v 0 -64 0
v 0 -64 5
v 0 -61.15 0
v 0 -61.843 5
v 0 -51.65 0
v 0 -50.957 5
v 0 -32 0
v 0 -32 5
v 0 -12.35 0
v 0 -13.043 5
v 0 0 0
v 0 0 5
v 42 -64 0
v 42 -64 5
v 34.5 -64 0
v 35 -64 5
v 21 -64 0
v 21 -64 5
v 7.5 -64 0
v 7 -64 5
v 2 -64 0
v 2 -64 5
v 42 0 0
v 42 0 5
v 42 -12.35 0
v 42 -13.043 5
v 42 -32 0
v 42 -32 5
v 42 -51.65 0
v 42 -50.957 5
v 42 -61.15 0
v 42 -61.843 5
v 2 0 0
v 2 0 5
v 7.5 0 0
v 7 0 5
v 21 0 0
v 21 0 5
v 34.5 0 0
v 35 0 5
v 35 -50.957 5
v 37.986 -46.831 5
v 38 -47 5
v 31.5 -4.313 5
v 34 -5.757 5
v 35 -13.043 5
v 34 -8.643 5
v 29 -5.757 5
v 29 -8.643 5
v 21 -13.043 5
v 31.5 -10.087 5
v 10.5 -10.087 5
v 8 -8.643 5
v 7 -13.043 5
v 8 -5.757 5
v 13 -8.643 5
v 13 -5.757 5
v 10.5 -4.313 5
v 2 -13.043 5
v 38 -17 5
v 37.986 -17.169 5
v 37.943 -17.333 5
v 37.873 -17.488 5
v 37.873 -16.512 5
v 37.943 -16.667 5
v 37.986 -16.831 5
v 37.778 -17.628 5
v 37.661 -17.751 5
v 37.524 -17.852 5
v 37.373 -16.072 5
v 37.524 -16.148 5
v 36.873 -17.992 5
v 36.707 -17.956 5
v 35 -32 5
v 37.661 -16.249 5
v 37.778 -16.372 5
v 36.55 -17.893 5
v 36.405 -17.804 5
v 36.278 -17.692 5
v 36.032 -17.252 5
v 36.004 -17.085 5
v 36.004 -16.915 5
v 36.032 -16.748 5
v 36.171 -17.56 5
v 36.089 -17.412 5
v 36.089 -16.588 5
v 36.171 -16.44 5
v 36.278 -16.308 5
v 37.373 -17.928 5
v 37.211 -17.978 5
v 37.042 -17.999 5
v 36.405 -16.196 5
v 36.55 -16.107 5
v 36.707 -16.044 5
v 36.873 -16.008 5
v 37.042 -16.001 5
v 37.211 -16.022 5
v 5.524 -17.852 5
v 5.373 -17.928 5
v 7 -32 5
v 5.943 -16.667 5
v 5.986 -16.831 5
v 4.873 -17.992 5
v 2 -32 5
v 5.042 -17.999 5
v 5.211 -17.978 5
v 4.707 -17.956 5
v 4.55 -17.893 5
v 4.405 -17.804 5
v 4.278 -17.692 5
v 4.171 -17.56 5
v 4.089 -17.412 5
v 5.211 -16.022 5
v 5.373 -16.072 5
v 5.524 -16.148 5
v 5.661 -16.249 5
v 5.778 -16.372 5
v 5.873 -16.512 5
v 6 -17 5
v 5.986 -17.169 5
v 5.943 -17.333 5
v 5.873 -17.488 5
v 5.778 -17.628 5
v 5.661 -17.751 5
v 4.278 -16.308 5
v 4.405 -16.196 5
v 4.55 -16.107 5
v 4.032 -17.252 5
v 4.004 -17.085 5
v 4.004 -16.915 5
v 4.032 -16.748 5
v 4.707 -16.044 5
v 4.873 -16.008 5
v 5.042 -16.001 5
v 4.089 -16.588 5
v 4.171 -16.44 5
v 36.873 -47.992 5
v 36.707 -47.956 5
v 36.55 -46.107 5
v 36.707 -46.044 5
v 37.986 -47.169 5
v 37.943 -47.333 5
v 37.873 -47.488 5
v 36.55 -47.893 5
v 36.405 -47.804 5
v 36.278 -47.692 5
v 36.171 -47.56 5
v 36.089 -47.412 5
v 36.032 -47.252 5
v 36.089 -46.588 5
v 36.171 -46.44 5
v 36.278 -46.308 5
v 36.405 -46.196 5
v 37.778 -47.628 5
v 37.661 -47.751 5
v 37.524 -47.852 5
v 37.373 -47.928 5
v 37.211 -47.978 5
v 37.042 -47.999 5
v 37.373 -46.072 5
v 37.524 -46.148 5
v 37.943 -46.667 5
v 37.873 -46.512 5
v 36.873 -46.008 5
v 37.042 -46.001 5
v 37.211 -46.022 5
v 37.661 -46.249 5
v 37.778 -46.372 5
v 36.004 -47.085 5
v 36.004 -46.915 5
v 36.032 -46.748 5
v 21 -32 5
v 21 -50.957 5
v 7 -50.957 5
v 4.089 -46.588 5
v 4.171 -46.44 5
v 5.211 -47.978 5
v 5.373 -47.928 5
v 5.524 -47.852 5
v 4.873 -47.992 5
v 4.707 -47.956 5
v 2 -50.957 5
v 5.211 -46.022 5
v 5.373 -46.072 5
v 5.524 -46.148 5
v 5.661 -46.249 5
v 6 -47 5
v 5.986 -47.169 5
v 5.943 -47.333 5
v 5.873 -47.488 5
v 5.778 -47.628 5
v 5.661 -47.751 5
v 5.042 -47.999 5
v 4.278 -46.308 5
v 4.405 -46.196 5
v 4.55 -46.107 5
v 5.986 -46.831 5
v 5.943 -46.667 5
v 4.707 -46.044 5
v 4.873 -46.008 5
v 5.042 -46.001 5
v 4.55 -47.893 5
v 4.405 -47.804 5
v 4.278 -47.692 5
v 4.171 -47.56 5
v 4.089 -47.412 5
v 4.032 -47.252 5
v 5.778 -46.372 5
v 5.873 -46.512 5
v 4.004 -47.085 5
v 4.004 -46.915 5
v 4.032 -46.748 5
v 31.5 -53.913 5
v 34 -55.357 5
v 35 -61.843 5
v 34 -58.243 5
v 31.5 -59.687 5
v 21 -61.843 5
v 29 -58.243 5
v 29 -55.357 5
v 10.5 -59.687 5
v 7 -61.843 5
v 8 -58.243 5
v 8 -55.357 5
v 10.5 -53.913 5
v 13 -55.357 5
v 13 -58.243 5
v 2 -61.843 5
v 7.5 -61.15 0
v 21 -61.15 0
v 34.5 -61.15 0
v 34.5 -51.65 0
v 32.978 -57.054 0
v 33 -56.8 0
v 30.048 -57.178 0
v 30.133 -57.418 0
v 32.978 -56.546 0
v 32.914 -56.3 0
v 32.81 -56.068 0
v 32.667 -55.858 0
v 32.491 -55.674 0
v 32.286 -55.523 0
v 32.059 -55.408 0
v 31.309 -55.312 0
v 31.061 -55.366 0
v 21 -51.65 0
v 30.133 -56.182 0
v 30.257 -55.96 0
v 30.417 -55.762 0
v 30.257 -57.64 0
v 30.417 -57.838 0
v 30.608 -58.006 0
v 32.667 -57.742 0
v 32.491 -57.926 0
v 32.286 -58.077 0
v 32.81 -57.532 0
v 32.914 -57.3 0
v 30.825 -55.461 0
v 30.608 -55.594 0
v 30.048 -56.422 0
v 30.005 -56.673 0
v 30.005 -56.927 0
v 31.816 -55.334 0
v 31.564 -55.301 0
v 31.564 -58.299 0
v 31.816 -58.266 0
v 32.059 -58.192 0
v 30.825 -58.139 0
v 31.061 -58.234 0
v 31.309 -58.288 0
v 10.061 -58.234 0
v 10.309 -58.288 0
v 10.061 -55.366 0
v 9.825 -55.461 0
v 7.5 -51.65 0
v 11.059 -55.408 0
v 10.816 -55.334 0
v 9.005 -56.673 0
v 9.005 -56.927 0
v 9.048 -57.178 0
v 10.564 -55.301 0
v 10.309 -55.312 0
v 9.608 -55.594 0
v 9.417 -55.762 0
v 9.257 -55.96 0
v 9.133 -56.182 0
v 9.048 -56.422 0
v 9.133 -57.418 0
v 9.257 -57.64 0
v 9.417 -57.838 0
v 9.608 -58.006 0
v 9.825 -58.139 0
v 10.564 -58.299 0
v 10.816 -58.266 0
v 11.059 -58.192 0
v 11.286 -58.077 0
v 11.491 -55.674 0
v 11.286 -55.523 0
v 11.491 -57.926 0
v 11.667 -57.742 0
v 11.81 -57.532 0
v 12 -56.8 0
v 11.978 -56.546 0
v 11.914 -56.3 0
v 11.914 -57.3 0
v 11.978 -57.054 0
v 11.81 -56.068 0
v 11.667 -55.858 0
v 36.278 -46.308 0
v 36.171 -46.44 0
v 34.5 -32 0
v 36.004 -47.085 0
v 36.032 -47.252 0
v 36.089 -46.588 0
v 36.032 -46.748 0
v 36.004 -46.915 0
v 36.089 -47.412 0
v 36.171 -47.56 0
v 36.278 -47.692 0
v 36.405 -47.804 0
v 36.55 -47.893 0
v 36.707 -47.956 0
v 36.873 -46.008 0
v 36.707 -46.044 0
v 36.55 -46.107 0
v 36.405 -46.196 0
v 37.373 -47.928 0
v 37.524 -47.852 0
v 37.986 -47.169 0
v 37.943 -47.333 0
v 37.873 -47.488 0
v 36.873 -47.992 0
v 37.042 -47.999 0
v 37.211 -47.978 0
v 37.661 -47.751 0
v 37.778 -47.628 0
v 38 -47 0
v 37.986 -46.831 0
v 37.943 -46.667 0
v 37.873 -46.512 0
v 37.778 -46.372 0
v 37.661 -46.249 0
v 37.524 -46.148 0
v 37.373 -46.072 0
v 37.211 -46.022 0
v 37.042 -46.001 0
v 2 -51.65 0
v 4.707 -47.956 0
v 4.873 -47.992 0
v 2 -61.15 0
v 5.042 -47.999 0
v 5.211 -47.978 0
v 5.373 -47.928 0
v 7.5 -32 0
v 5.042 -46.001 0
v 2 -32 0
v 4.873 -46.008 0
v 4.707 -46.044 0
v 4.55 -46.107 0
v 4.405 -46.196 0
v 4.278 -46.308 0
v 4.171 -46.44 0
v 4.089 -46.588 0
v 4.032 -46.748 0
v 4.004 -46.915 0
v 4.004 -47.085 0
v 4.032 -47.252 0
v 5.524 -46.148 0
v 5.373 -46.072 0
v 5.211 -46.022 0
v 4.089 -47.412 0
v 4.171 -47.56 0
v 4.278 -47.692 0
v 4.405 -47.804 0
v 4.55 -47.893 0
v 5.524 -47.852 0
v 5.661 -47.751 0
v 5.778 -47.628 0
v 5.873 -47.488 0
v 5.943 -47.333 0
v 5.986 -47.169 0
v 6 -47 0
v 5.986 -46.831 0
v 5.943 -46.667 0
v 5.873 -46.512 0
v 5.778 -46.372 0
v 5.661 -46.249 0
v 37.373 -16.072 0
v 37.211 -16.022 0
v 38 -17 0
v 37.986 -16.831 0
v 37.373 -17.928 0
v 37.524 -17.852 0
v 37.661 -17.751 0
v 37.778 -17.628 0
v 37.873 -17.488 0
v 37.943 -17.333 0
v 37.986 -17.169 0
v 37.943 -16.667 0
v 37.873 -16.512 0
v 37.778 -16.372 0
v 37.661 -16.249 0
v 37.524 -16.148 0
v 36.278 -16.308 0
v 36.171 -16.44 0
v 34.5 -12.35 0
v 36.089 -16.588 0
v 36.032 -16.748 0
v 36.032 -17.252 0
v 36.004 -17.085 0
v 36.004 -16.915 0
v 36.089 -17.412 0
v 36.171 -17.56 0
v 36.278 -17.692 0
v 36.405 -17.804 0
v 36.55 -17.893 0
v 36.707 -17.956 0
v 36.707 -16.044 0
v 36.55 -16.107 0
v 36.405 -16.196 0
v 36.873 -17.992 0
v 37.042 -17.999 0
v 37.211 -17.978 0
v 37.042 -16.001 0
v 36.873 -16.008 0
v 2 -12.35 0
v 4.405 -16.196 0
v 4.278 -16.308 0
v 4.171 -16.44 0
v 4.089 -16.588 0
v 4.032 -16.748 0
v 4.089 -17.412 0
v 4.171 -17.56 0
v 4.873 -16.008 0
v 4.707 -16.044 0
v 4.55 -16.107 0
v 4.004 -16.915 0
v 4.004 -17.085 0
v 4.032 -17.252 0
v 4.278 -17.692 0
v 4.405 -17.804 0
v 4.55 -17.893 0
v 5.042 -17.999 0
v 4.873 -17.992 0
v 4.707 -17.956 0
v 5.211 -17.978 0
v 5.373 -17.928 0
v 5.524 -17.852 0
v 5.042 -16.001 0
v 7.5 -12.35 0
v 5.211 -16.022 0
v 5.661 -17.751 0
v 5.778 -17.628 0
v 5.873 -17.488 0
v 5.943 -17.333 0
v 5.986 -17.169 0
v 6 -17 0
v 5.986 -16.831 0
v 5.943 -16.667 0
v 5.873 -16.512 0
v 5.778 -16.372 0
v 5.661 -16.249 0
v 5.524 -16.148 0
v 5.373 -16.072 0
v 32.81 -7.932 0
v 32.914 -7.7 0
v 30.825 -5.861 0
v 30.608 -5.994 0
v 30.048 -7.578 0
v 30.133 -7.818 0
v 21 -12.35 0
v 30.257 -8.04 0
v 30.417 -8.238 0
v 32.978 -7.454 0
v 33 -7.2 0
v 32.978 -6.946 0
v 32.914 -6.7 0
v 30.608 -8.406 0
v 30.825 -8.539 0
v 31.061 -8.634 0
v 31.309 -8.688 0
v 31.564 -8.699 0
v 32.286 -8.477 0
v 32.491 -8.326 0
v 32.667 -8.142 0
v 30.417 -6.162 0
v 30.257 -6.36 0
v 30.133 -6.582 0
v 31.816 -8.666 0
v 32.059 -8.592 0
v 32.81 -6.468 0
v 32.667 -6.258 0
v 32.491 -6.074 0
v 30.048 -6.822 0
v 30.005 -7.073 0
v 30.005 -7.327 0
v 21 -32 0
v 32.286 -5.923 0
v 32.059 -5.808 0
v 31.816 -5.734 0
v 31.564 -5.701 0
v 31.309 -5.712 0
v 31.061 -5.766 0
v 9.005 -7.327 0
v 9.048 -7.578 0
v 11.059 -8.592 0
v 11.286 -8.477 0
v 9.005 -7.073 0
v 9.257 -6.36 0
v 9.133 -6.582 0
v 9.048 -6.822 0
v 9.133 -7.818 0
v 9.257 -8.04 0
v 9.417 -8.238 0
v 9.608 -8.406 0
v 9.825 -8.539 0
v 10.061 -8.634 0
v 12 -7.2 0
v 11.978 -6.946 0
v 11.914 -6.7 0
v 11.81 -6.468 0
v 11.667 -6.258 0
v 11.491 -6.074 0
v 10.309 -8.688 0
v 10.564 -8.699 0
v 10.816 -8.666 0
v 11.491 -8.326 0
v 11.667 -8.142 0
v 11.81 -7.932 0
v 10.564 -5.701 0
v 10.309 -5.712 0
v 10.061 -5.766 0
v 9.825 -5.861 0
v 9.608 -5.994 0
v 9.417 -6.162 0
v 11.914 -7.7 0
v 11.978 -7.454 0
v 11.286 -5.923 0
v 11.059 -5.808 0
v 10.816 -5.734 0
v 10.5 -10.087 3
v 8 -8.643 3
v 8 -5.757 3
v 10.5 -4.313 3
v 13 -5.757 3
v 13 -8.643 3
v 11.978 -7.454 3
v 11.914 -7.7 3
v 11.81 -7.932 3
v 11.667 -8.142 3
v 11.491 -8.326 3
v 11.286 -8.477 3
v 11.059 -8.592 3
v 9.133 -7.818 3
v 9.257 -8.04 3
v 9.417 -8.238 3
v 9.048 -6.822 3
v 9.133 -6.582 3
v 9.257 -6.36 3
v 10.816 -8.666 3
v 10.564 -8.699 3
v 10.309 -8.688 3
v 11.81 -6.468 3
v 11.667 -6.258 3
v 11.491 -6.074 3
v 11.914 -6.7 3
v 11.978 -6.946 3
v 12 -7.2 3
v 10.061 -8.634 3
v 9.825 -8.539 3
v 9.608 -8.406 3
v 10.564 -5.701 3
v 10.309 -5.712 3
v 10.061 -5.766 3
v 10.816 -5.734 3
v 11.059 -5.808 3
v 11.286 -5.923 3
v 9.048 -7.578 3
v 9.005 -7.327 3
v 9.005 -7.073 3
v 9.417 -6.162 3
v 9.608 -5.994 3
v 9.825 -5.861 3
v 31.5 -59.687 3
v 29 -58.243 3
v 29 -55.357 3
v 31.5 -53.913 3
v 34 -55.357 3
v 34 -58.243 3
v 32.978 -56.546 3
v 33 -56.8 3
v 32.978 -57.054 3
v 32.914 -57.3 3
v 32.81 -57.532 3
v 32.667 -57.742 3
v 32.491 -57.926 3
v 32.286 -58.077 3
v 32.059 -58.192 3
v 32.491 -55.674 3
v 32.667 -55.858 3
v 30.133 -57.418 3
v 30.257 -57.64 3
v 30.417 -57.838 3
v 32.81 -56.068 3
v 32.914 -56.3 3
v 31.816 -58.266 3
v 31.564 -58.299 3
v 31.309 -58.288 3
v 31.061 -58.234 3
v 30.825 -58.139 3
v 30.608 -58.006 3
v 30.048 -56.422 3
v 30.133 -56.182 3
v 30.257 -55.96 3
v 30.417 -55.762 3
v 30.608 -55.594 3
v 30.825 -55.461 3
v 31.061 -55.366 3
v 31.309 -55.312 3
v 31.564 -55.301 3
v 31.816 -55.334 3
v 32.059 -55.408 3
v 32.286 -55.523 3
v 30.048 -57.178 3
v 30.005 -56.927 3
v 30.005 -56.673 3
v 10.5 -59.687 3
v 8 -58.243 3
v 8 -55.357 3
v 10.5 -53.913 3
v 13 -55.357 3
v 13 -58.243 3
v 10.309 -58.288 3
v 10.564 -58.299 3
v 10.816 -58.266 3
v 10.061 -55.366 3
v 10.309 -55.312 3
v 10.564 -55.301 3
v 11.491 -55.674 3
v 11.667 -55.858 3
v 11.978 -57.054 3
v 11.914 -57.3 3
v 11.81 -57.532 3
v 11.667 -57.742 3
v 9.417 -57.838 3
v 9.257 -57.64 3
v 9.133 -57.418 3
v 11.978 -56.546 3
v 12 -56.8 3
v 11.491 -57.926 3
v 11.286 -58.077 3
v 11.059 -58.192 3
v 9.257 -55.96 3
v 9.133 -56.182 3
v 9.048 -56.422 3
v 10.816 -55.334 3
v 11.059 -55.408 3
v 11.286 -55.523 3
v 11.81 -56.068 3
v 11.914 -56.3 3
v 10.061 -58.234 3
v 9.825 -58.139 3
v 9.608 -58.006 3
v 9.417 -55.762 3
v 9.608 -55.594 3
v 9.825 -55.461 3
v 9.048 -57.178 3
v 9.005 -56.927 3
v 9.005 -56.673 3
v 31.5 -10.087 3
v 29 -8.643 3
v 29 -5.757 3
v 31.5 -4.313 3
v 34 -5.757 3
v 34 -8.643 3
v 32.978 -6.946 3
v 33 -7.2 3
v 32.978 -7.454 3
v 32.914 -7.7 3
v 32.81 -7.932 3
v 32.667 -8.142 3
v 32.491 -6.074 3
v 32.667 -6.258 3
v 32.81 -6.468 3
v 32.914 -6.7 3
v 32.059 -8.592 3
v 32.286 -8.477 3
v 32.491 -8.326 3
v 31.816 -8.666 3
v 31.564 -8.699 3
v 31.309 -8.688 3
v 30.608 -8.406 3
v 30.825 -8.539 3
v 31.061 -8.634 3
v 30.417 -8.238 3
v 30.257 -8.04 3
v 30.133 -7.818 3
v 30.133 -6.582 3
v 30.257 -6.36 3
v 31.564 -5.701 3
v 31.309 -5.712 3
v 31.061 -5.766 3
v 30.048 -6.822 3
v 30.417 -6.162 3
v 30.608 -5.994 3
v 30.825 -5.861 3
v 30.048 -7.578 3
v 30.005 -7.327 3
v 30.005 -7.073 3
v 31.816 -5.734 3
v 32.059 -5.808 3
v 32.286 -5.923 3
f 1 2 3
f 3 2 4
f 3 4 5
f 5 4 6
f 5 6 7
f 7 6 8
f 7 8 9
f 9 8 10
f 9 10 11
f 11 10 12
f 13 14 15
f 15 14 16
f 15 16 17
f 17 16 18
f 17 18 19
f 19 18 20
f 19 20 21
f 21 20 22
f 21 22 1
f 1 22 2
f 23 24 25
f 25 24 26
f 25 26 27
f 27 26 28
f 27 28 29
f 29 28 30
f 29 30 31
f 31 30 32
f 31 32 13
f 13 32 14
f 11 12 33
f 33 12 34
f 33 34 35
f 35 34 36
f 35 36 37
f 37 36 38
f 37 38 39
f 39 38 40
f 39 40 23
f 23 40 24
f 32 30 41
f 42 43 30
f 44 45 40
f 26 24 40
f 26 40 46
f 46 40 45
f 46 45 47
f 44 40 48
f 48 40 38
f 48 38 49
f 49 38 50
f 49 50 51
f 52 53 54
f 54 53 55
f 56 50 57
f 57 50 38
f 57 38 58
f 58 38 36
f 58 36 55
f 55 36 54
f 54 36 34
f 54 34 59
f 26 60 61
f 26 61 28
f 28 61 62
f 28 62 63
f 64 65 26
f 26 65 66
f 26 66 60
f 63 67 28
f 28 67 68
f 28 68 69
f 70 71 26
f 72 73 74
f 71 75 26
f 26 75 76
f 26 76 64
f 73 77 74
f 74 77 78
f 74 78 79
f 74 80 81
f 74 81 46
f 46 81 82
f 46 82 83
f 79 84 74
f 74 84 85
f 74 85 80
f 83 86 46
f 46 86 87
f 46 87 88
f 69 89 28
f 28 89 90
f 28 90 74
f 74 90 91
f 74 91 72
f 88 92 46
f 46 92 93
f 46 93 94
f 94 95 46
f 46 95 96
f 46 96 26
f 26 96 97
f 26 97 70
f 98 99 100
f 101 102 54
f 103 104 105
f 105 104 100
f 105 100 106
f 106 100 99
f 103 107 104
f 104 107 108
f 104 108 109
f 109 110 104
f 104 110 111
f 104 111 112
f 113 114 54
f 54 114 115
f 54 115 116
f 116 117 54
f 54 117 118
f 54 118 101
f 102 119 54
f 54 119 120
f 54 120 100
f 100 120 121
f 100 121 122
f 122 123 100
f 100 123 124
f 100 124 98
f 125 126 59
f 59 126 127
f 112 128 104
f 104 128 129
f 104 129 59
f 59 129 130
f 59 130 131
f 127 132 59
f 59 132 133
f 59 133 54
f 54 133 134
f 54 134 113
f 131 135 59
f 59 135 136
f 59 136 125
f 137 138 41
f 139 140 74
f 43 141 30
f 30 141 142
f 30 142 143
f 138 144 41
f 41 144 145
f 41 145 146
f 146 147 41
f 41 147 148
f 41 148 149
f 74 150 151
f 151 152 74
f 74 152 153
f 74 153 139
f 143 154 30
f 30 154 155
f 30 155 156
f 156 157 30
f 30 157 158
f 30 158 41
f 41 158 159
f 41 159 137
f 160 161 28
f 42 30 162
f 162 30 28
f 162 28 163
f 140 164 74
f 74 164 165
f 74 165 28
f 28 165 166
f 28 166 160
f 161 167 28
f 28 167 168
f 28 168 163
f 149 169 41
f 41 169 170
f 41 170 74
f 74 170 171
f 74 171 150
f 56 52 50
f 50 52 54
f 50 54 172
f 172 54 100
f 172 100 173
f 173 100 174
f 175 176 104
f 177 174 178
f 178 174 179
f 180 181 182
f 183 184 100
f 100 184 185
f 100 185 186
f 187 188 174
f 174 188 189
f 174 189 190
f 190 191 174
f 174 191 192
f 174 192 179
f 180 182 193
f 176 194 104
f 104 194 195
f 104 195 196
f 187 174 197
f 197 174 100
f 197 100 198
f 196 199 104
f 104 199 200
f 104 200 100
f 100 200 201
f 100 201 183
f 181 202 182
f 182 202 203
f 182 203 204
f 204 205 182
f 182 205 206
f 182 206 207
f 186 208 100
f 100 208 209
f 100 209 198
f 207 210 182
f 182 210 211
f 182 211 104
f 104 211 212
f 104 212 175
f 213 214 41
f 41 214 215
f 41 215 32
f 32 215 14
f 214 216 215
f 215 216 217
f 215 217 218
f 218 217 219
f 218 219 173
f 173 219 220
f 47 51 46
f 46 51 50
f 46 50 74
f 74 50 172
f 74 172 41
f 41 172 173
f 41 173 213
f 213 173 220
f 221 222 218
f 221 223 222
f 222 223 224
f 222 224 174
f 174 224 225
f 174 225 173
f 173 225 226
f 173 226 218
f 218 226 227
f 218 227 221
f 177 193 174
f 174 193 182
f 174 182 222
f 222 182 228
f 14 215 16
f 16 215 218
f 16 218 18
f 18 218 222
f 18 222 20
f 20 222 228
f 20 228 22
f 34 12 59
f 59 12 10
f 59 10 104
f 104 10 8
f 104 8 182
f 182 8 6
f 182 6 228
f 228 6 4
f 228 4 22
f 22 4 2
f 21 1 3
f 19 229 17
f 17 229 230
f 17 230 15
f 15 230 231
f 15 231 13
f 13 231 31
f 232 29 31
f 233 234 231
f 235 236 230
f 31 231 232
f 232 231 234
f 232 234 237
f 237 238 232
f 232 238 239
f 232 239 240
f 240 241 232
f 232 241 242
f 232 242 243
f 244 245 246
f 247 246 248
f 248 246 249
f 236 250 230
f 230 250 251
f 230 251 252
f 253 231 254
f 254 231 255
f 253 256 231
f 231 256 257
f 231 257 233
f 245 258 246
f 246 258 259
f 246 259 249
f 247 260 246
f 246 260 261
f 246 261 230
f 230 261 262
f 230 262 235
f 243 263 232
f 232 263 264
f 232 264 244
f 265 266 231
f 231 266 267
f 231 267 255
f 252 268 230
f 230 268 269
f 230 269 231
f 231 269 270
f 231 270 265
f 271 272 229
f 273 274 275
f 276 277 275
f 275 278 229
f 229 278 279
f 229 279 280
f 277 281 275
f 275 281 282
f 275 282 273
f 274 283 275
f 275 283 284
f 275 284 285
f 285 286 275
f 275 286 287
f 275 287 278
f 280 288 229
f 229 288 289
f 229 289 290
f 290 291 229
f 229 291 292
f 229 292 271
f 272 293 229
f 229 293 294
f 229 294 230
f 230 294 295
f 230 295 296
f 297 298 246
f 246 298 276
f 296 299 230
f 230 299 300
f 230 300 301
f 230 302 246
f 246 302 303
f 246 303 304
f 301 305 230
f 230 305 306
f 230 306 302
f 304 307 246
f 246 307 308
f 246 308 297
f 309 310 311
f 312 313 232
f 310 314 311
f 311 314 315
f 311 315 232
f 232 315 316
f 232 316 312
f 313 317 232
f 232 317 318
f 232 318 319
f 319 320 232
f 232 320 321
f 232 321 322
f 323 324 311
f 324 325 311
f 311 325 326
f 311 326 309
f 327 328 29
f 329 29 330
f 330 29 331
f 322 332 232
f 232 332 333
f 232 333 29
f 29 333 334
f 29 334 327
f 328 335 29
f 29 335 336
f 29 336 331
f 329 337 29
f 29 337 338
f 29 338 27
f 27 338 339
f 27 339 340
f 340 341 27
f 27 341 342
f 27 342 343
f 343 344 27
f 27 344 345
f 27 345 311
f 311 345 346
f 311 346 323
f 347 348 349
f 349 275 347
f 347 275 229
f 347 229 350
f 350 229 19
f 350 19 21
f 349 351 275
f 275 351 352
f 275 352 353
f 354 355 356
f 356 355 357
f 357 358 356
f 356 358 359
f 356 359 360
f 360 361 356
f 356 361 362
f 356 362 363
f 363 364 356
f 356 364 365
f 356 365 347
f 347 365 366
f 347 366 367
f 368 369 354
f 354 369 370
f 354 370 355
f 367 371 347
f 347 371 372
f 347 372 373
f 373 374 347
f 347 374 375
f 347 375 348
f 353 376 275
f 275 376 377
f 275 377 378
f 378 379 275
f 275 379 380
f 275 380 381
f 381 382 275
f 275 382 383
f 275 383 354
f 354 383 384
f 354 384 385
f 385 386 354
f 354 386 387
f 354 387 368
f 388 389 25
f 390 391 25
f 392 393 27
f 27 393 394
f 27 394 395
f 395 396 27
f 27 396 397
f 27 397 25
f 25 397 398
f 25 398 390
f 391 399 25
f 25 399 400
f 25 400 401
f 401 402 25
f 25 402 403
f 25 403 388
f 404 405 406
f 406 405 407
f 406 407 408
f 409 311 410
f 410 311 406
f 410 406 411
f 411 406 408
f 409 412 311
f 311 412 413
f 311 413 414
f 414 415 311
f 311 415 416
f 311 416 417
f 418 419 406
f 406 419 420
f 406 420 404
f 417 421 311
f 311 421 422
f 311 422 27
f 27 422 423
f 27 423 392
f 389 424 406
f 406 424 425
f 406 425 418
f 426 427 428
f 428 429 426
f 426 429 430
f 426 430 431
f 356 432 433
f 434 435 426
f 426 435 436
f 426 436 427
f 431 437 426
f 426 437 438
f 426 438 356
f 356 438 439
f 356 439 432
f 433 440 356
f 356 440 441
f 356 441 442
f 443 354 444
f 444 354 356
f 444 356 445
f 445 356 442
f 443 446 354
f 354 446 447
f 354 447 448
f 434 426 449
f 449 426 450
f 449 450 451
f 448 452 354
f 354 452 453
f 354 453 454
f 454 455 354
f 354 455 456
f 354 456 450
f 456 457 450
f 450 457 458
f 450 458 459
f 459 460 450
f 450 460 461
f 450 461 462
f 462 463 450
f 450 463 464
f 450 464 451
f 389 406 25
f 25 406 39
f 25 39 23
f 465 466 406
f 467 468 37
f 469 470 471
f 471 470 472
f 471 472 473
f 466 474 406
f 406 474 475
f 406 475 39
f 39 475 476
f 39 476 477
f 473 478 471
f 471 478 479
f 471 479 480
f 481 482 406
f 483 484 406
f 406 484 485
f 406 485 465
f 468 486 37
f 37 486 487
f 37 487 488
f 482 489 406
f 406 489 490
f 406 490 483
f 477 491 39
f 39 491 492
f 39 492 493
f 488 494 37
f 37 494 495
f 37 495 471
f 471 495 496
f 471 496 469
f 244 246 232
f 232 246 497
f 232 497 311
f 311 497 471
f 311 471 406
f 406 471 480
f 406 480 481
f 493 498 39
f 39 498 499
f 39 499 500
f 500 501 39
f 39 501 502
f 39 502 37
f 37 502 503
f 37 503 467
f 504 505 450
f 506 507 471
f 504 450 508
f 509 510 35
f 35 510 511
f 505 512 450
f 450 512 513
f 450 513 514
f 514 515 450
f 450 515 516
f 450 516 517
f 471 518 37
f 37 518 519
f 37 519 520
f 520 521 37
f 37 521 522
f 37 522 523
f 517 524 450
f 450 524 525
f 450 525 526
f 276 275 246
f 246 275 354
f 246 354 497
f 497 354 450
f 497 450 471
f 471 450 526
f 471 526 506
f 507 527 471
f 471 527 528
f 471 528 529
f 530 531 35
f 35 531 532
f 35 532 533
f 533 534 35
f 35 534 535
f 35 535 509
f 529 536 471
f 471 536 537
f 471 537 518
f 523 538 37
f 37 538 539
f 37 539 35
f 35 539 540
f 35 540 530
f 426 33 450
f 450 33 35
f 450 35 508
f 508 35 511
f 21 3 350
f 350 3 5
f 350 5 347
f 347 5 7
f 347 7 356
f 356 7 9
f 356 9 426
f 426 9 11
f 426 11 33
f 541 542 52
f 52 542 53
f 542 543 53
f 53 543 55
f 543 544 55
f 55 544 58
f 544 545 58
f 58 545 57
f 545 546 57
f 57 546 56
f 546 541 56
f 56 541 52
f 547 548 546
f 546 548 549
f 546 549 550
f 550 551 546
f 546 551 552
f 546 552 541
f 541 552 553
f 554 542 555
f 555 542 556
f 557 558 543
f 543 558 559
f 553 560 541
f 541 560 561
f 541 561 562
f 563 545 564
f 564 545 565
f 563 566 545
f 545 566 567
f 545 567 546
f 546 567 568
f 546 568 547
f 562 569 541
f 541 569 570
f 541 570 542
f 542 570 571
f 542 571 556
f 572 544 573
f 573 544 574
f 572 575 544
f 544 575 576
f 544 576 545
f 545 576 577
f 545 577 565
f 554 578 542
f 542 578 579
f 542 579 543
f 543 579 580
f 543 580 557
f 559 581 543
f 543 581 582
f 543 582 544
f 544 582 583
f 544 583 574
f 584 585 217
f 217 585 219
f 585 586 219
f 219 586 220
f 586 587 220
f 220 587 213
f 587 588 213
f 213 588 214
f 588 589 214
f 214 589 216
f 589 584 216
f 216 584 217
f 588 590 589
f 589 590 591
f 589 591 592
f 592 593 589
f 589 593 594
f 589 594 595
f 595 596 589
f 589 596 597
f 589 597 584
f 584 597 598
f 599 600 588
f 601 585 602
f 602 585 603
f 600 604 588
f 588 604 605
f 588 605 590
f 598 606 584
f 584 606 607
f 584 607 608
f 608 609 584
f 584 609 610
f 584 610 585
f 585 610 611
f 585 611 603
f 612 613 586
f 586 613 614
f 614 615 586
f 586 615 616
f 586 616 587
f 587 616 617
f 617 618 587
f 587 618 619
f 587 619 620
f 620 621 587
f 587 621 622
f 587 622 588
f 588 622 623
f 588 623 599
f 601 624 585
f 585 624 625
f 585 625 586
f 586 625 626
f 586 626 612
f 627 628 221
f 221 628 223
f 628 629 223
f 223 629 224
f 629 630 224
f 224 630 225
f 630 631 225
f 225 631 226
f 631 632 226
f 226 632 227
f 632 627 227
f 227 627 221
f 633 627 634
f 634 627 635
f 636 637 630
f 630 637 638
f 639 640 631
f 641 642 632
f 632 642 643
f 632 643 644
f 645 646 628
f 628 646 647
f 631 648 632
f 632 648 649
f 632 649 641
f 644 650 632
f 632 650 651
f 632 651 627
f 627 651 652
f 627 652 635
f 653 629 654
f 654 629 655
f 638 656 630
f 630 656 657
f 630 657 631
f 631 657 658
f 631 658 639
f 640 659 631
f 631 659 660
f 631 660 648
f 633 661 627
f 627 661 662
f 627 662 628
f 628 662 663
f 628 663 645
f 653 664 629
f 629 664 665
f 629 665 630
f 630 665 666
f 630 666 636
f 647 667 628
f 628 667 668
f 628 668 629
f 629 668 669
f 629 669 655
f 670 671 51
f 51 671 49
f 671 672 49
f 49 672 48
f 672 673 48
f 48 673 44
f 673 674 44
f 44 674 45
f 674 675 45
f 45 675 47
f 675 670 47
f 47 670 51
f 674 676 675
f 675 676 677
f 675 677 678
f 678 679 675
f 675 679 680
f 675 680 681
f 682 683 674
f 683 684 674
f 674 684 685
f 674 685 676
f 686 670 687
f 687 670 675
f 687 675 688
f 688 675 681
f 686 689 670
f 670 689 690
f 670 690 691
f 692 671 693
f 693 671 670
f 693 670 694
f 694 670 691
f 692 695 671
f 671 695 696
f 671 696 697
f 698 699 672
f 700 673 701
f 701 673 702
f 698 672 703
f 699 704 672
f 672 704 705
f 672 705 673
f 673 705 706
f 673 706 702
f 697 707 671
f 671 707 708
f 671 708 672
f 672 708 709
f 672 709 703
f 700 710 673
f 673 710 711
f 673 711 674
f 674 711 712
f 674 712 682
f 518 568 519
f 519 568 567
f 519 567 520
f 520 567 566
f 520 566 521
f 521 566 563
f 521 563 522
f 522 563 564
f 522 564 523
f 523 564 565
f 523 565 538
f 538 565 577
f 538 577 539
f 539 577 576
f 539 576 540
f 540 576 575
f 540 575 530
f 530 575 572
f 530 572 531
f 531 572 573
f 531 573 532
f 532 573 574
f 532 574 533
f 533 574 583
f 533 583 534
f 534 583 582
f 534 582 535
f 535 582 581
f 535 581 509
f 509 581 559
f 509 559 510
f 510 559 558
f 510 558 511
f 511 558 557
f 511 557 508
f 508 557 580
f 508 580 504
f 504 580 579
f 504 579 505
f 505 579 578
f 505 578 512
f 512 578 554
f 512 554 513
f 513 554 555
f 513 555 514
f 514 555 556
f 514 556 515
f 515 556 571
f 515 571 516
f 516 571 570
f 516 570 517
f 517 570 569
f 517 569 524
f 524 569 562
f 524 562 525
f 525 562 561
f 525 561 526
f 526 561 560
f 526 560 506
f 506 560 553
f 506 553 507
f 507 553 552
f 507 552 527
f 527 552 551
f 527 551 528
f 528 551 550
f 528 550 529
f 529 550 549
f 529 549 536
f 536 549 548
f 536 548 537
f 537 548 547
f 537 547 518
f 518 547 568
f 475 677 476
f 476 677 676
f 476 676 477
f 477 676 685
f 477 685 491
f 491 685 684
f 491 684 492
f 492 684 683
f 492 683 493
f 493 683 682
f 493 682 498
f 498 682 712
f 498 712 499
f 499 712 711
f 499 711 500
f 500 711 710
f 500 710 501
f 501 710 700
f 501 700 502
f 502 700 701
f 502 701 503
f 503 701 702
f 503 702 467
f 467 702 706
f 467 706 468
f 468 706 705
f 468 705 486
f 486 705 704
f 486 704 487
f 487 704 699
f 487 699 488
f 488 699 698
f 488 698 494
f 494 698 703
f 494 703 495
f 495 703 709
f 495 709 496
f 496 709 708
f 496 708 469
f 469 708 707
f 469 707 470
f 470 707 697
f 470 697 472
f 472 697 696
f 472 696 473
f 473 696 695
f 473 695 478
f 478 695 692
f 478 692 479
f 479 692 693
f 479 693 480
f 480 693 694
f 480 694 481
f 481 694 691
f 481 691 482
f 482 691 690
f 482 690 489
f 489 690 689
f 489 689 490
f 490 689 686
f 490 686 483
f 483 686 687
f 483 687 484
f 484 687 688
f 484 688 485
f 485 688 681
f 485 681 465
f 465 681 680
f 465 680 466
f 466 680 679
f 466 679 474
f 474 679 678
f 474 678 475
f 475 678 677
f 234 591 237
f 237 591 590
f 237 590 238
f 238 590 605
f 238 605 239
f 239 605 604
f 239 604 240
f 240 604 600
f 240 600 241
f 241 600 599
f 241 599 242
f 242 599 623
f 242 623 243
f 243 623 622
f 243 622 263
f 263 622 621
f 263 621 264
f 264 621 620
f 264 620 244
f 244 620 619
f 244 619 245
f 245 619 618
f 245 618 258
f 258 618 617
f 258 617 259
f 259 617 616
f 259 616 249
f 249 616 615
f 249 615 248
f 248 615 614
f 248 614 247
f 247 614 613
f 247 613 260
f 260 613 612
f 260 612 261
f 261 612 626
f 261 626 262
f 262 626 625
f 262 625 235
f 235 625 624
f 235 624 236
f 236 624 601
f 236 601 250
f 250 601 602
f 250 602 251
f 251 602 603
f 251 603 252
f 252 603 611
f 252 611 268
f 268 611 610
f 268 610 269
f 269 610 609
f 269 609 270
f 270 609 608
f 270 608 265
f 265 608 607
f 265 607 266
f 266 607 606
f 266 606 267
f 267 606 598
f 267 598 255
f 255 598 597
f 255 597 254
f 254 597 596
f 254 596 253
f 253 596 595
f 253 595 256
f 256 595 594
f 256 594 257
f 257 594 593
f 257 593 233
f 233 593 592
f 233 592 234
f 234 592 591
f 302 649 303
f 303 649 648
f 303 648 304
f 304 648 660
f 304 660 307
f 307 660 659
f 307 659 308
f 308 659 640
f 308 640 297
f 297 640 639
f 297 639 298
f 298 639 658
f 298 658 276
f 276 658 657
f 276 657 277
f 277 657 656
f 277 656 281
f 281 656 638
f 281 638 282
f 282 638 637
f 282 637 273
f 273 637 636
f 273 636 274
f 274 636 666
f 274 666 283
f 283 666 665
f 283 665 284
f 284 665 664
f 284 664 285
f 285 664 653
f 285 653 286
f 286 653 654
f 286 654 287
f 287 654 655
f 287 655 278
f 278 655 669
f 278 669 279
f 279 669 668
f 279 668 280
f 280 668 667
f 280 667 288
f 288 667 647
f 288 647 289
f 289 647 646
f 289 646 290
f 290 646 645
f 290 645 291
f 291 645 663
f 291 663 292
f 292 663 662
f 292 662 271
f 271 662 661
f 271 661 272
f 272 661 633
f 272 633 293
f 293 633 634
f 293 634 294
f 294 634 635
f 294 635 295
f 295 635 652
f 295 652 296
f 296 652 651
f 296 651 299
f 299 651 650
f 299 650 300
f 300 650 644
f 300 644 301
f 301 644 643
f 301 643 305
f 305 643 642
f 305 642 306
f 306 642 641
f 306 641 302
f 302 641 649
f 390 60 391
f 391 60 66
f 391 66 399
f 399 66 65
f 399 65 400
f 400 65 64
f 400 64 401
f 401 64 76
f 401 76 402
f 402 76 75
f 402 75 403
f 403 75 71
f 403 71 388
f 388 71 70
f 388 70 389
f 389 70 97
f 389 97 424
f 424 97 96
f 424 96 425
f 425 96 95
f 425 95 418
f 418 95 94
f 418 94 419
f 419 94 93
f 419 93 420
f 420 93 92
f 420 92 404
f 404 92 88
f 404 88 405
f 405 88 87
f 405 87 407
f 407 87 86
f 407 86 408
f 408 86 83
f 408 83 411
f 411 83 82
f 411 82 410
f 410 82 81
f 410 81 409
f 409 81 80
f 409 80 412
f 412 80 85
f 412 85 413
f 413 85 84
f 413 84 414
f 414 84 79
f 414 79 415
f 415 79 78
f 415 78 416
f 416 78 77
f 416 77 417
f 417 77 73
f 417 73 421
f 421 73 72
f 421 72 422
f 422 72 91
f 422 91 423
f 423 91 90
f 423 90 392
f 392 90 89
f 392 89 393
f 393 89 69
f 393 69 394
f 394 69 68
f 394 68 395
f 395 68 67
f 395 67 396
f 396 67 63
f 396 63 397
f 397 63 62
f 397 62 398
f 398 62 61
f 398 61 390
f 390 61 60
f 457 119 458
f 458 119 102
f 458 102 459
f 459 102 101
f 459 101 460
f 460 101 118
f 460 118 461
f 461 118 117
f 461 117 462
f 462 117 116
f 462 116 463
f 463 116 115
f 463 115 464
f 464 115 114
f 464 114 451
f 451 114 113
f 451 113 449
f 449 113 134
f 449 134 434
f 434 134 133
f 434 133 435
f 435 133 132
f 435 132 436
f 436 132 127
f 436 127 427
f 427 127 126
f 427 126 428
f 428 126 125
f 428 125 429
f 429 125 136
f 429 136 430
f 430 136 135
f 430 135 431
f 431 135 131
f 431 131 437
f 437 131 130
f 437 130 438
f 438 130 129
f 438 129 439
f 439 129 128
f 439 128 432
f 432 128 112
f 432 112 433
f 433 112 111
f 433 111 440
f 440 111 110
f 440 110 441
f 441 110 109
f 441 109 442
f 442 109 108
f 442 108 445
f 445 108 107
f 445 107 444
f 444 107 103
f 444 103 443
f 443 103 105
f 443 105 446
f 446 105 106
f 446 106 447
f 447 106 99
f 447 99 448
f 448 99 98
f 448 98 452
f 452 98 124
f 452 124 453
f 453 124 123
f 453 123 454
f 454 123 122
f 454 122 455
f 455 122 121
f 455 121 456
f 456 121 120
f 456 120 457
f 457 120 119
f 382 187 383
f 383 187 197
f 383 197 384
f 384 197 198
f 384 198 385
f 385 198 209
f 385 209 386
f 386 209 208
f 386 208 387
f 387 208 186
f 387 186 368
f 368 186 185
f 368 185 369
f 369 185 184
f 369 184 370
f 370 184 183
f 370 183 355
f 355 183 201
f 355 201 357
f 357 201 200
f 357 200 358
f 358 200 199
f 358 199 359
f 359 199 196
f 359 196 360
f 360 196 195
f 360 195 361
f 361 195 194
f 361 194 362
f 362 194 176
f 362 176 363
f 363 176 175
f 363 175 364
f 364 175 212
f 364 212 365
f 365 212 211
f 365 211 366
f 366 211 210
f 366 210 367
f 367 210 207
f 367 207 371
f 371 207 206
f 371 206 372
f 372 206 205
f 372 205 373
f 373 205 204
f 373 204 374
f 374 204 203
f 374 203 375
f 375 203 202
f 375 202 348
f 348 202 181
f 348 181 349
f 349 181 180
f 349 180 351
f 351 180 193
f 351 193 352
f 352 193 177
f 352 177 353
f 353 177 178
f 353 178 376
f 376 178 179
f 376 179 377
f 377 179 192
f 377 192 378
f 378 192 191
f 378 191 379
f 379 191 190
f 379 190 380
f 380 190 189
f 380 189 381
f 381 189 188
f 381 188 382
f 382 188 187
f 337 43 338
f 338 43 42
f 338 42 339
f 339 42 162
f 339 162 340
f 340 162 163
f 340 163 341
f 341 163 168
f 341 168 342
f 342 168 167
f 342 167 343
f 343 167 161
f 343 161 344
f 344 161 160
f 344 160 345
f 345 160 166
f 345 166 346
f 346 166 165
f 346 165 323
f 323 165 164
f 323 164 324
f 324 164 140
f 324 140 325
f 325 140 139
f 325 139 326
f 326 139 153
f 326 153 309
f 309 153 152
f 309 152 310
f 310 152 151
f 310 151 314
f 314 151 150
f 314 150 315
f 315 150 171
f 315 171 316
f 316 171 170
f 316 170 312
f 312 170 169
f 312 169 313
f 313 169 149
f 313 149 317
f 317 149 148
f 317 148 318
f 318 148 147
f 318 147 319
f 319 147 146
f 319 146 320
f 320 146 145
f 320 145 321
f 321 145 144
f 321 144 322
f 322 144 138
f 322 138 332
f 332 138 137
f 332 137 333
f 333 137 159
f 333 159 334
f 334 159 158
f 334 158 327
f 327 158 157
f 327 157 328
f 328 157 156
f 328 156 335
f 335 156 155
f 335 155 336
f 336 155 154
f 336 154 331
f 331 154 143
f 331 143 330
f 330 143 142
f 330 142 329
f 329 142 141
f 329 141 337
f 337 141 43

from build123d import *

# Parameters (mm, degrees)
SKETCH_1_W          = 42
SKETCH_1_H          = 64
EXTRUDE_1_DEPTH     = 5
CUT_EXTRUDE_1_DEPTH = 2
SKETCH_4_R          = 1.5
CUT_EXTRUDE_2_DEPTH = 77.609398901
SKETCH_5_R          = 1
CUT_EXTRUDE_3_DEPTH = 5


with BuildPart() as part:
    # 스케치1 → 보스-돌출1 (new body)
    with BuildSketch(Plane.XY):
        with Locations((21, -32)):
            Rectangle(SKETCH_1_W, SKETCH_1_H)
    extrude(amount=EXTRUDE_1_DEPTH)

    # 스케치2 → 컷-돌출1 (cut)
    with BuildSketch(Plane.XY.offset(5)):
        Polygon((10.5, -4.313248654), (10.5, -10.086751346), (8, -8.643375673), (8, -5.756624327), align=None)
        Polygon((13, -5.756624327), (10.5, -4.313248654), (10.5, -10.086751346), (13, -8.643375673), align=None)
        Polygon((31.5, -4.313248654), (31.5, -10.086751346), (29, -8.643375673), (29, -5.756624327), align=None)
        Polygon((34, -5.756624327), (31.5, -4.313248654), (31.5, -10.086751346), (34, -8.643375673), align=None)
        Polygon((10.5, -53.913248654), (10.5, -59.686751346), (8, -58.243375673), (8, -55.356624327), align=None)
        Polygon((13, -55.356624327), (10.5, -53.913248654), (10.5, -59.686751346), (13, -58.243375673), align=None)
        Polygon((31.5, -53.913248654), (31.5, -59.686751346), (29, -58.243375673), (29, -55.356624327), align=None)
        Polygon((34, -55.356624327), (31.5, -53.913248654), (31.5, -59.686751346), (34, -58.243375673), align=None)
    extrude(amount=-CUT_EXTRUDE_1_DEPTH, mode=Mode.SUBTRACT)

    # 스케치4 → 컷-돌출2 (cut, through all)
    with BuildSketch(Plane.XY.offset(3)):
        with Locations((10.5, -7.2)):
            Circle(SKETCH_4_R)
        with Locations((31.5, -7.2)):
            Circle(SKETCH_4_R)
        with Locations((31.5, -56.8)):
            Circle(SKETCH_4_R)
        with Locations((10.5, -56.8)):
            Circle(SKETCH_4_R)
    extrude(amount=-CUT_EXTRUDE_2_DEPTH, mode=Mode.SUBTRACT)

    # 스케치5 → 컷-돌출3 (cut)
    with BuildSketch(Plane.XY.offset(5)):
        with Locations((5, -17)):
            Circle(SKETCH_5_R)
        with Locations((37, -17)):
            Circle(SKETCH_5_R)
        with Locations((5, -47)):
            Circle(SKETCH_5_R)
        with Locations((37, -47)):
            Circle(SKETCH_5_R)
    extrude(amount=-CUT_EXTRUDE_3_DEPTH, mode=Mode.SUBTRACT)


solid = part.part
